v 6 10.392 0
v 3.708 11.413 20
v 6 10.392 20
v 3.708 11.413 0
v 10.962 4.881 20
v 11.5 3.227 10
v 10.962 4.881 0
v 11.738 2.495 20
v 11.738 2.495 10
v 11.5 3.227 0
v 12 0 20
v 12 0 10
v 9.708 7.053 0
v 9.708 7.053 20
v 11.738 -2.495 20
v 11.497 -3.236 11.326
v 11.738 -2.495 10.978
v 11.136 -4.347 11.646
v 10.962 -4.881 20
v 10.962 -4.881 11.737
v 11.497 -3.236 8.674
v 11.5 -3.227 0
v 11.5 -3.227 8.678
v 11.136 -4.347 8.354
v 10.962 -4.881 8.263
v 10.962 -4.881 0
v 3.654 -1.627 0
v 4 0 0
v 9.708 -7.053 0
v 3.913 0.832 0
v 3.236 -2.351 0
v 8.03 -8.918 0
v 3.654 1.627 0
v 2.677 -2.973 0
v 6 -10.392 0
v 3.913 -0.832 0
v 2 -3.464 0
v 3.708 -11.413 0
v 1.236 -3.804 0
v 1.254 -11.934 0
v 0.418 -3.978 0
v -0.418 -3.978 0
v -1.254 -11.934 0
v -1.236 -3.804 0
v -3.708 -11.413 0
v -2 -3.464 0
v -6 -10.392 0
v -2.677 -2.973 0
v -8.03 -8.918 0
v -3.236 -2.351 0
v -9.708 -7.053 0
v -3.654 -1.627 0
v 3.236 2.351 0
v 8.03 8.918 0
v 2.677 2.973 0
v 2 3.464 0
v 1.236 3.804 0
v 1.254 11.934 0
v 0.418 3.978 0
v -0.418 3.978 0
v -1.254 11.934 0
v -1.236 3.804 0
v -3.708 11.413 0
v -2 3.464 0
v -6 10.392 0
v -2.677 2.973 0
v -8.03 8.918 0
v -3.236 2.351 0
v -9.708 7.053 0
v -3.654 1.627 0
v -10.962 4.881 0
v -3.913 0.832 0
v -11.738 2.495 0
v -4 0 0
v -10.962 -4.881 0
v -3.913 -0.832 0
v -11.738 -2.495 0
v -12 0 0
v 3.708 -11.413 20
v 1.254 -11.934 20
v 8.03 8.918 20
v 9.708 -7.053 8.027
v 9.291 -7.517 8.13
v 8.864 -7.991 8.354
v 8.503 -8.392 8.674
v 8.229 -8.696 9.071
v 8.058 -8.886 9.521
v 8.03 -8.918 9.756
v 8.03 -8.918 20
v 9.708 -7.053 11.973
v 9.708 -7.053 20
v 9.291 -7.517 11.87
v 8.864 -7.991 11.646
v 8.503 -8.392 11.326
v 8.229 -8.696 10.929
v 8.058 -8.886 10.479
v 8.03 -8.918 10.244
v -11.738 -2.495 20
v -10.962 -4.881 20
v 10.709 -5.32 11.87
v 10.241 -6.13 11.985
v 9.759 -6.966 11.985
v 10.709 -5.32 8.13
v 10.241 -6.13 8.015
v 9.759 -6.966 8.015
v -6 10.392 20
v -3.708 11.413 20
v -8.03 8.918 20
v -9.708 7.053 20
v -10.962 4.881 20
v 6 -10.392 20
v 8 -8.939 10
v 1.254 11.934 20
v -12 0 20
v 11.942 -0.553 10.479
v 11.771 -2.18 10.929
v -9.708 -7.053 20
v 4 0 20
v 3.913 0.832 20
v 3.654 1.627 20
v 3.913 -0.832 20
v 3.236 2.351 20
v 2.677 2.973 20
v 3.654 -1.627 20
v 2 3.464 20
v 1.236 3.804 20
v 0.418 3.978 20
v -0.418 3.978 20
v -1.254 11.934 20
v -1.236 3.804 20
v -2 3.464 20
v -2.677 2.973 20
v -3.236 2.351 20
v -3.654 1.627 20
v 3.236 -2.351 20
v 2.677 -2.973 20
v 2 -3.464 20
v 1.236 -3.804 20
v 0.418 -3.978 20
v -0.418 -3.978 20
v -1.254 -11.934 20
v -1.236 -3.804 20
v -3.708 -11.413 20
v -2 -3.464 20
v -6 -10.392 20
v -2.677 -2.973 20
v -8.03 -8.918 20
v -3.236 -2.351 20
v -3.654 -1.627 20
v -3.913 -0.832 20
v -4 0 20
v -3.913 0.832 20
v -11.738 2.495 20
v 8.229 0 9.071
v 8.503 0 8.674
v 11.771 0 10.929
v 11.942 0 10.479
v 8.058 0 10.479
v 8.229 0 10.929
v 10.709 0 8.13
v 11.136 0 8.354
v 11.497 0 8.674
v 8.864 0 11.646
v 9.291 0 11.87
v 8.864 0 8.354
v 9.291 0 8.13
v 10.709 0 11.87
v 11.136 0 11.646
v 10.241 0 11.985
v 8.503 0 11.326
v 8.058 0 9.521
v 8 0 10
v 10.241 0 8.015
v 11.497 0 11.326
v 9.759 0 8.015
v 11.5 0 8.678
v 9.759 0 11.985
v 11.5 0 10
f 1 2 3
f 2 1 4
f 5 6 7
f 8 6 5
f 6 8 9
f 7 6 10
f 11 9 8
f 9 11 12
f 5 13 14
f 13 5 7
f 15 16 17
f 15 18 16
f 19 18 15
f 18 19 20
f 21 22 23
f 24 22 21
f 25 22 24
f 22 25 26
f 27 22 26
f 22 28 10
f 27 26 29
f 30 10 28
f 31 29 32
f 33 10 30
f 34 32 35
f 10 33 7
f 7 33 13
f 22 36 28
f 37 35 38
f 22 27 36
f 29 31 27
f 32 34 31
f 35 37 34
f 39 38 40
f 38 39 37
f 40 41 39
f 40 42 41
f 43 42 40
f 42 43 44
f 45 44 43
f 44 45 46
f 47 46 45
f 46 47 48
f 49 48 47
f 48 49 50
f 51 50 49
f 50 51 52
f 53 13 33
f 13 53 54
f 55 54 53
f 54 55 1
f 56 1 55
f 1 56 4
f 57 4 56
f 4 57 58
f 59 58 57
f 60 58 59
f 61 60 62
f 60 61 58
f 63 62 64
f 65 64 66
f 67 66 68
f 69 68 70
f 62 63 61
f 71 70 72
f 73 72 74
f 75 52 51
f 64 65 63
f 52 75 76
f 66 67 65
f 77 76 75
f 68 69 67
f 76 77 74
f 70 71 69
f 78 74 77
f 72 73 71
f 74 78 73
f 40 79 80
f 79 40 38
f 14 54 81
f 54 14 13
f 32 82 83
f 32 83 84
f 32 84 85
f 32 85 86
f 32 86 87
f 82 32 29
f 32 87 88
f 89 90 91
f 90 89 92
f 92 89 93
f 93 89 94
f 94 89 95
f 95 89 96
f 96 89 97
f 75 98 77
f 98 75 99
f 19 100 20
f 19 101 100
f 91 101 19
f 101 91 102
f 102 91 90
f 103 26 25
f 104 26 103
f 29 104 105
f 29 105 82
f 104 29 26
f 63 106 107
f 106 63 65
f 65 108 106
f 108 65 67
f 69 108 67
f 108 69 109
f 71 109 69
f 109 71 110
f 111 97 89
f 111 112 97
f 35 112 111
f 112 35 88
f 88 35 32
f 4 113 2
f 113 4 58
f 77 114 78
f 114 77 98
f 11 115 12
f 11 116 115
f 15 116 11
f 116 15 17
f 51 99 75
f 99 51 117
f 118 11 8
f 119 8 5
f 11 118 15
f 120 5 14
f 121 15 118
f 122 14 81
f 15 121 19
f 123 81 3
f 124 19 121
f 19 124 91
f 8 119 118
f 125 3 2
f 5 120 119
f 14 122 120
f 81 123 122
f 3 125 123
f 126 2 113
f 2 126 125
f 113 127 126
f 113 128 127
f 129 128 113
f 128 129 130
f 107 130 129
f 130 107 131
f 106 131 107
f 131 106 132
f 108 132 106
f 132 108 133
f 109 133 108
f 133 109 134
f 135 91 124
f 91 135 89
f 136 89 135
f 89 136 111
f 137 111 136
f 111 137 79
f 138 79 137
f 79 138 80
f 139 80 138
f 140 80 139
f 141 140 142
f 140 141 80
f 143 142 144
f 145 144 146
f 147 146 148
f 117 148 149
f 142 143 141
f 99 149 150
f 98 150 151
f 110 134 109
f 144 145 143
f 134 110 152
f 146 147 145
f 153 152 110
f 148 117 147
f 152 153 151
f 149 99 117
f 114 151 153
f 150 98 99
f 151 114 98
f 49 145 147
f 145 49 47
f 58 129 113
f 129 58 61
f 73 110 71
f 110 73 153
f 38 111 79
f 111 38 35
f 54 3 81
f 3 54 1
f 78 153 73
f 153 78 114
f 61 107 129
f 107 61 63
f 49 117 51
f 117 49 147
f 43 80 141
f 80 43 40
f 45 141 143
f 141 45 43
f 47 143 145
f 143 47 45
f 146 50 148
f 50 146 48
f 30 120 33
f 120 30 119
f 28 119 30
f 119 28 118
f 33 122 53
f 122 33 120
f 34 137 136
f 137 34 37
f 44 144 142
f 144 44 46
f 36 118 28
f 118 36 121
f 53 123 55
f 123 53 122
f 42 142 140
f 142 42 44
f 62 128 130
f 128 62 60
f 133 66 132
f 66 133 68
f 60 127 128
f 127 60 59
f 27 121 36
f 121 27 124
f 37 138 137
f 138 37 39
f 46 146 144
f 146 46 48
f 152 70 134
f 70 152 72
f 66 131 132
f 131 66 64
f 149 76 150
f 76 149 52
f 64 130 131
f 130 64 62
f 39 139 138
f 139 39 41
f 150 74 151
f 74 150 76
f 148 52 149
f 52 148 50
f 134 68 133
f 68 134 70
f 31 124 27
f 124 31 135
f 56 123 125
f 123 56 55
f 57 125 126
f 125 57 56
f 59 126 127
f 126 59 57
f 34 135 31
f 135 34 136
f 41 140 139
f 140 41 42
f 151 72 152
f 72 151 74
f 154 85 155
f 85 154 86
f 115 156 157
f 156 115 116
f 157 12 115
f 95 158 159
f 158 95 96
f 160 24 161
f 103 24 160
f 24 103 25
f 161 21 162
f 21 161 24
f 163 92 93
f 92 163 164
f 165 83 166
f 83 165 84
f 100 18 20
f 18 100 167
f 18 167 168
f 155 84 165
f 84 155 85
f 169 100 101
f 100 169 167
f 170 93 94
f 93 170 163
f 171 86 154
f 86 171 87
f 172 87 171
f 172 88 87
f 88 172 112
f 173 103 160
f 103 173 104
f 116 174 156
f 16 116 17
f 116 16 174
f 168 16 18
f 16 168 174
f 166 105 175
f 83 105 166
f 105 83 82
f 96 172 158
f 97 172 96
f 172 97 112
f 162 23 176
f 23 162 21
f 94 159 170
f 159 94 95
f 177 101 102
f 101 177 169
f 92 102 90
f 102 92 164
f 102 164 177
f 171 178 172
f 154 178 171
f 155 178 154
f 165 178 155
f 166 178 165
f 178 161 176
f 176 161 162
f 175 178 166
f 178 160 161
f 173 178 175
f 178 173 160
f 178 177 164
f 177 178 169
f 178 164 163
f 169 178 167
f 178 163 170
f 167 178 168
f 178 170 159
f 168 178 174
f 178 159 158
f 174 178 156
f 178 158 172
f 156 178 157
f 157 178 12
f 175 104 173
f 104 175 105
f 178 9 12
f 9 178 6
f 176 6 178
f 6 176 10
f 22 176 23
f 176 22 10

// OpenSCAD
// Clamp adapter to attach the flywheel to a shaft
// Uses a split collar design with two clamp bolts

shaft_diameter = 8; // mm
outer_diameter = 24; // mm
length = 20; // mm
bolt_diameter = 4; // mm
slit_width = 1; // mm

module clamp_adapter(shaft_d, outer_d, len, bolt_d, slit_w) {
    difference() {
        cylinder(d=outer_d, h=len, $fs=0.5);
        cylinder(d=shaft_d, h=len+0.1, $fs=0.5);
        // clearance for clamp bolt
        translate([outer_d/2 - bolt_d/2, 0, len/2])
            rotate([90,0,0])
                cylinder(d=bolt_d, h=outer_d+2, $fs=0.5);
        // slot for clamping
        translate([outer_d/2, 0, 0])
            cube([slit_w, outer_d, len], center=true);
    }
}

clamp_adapter(shaft_diameter, outer_diameter, length, bolt_diameter, slit_width);
